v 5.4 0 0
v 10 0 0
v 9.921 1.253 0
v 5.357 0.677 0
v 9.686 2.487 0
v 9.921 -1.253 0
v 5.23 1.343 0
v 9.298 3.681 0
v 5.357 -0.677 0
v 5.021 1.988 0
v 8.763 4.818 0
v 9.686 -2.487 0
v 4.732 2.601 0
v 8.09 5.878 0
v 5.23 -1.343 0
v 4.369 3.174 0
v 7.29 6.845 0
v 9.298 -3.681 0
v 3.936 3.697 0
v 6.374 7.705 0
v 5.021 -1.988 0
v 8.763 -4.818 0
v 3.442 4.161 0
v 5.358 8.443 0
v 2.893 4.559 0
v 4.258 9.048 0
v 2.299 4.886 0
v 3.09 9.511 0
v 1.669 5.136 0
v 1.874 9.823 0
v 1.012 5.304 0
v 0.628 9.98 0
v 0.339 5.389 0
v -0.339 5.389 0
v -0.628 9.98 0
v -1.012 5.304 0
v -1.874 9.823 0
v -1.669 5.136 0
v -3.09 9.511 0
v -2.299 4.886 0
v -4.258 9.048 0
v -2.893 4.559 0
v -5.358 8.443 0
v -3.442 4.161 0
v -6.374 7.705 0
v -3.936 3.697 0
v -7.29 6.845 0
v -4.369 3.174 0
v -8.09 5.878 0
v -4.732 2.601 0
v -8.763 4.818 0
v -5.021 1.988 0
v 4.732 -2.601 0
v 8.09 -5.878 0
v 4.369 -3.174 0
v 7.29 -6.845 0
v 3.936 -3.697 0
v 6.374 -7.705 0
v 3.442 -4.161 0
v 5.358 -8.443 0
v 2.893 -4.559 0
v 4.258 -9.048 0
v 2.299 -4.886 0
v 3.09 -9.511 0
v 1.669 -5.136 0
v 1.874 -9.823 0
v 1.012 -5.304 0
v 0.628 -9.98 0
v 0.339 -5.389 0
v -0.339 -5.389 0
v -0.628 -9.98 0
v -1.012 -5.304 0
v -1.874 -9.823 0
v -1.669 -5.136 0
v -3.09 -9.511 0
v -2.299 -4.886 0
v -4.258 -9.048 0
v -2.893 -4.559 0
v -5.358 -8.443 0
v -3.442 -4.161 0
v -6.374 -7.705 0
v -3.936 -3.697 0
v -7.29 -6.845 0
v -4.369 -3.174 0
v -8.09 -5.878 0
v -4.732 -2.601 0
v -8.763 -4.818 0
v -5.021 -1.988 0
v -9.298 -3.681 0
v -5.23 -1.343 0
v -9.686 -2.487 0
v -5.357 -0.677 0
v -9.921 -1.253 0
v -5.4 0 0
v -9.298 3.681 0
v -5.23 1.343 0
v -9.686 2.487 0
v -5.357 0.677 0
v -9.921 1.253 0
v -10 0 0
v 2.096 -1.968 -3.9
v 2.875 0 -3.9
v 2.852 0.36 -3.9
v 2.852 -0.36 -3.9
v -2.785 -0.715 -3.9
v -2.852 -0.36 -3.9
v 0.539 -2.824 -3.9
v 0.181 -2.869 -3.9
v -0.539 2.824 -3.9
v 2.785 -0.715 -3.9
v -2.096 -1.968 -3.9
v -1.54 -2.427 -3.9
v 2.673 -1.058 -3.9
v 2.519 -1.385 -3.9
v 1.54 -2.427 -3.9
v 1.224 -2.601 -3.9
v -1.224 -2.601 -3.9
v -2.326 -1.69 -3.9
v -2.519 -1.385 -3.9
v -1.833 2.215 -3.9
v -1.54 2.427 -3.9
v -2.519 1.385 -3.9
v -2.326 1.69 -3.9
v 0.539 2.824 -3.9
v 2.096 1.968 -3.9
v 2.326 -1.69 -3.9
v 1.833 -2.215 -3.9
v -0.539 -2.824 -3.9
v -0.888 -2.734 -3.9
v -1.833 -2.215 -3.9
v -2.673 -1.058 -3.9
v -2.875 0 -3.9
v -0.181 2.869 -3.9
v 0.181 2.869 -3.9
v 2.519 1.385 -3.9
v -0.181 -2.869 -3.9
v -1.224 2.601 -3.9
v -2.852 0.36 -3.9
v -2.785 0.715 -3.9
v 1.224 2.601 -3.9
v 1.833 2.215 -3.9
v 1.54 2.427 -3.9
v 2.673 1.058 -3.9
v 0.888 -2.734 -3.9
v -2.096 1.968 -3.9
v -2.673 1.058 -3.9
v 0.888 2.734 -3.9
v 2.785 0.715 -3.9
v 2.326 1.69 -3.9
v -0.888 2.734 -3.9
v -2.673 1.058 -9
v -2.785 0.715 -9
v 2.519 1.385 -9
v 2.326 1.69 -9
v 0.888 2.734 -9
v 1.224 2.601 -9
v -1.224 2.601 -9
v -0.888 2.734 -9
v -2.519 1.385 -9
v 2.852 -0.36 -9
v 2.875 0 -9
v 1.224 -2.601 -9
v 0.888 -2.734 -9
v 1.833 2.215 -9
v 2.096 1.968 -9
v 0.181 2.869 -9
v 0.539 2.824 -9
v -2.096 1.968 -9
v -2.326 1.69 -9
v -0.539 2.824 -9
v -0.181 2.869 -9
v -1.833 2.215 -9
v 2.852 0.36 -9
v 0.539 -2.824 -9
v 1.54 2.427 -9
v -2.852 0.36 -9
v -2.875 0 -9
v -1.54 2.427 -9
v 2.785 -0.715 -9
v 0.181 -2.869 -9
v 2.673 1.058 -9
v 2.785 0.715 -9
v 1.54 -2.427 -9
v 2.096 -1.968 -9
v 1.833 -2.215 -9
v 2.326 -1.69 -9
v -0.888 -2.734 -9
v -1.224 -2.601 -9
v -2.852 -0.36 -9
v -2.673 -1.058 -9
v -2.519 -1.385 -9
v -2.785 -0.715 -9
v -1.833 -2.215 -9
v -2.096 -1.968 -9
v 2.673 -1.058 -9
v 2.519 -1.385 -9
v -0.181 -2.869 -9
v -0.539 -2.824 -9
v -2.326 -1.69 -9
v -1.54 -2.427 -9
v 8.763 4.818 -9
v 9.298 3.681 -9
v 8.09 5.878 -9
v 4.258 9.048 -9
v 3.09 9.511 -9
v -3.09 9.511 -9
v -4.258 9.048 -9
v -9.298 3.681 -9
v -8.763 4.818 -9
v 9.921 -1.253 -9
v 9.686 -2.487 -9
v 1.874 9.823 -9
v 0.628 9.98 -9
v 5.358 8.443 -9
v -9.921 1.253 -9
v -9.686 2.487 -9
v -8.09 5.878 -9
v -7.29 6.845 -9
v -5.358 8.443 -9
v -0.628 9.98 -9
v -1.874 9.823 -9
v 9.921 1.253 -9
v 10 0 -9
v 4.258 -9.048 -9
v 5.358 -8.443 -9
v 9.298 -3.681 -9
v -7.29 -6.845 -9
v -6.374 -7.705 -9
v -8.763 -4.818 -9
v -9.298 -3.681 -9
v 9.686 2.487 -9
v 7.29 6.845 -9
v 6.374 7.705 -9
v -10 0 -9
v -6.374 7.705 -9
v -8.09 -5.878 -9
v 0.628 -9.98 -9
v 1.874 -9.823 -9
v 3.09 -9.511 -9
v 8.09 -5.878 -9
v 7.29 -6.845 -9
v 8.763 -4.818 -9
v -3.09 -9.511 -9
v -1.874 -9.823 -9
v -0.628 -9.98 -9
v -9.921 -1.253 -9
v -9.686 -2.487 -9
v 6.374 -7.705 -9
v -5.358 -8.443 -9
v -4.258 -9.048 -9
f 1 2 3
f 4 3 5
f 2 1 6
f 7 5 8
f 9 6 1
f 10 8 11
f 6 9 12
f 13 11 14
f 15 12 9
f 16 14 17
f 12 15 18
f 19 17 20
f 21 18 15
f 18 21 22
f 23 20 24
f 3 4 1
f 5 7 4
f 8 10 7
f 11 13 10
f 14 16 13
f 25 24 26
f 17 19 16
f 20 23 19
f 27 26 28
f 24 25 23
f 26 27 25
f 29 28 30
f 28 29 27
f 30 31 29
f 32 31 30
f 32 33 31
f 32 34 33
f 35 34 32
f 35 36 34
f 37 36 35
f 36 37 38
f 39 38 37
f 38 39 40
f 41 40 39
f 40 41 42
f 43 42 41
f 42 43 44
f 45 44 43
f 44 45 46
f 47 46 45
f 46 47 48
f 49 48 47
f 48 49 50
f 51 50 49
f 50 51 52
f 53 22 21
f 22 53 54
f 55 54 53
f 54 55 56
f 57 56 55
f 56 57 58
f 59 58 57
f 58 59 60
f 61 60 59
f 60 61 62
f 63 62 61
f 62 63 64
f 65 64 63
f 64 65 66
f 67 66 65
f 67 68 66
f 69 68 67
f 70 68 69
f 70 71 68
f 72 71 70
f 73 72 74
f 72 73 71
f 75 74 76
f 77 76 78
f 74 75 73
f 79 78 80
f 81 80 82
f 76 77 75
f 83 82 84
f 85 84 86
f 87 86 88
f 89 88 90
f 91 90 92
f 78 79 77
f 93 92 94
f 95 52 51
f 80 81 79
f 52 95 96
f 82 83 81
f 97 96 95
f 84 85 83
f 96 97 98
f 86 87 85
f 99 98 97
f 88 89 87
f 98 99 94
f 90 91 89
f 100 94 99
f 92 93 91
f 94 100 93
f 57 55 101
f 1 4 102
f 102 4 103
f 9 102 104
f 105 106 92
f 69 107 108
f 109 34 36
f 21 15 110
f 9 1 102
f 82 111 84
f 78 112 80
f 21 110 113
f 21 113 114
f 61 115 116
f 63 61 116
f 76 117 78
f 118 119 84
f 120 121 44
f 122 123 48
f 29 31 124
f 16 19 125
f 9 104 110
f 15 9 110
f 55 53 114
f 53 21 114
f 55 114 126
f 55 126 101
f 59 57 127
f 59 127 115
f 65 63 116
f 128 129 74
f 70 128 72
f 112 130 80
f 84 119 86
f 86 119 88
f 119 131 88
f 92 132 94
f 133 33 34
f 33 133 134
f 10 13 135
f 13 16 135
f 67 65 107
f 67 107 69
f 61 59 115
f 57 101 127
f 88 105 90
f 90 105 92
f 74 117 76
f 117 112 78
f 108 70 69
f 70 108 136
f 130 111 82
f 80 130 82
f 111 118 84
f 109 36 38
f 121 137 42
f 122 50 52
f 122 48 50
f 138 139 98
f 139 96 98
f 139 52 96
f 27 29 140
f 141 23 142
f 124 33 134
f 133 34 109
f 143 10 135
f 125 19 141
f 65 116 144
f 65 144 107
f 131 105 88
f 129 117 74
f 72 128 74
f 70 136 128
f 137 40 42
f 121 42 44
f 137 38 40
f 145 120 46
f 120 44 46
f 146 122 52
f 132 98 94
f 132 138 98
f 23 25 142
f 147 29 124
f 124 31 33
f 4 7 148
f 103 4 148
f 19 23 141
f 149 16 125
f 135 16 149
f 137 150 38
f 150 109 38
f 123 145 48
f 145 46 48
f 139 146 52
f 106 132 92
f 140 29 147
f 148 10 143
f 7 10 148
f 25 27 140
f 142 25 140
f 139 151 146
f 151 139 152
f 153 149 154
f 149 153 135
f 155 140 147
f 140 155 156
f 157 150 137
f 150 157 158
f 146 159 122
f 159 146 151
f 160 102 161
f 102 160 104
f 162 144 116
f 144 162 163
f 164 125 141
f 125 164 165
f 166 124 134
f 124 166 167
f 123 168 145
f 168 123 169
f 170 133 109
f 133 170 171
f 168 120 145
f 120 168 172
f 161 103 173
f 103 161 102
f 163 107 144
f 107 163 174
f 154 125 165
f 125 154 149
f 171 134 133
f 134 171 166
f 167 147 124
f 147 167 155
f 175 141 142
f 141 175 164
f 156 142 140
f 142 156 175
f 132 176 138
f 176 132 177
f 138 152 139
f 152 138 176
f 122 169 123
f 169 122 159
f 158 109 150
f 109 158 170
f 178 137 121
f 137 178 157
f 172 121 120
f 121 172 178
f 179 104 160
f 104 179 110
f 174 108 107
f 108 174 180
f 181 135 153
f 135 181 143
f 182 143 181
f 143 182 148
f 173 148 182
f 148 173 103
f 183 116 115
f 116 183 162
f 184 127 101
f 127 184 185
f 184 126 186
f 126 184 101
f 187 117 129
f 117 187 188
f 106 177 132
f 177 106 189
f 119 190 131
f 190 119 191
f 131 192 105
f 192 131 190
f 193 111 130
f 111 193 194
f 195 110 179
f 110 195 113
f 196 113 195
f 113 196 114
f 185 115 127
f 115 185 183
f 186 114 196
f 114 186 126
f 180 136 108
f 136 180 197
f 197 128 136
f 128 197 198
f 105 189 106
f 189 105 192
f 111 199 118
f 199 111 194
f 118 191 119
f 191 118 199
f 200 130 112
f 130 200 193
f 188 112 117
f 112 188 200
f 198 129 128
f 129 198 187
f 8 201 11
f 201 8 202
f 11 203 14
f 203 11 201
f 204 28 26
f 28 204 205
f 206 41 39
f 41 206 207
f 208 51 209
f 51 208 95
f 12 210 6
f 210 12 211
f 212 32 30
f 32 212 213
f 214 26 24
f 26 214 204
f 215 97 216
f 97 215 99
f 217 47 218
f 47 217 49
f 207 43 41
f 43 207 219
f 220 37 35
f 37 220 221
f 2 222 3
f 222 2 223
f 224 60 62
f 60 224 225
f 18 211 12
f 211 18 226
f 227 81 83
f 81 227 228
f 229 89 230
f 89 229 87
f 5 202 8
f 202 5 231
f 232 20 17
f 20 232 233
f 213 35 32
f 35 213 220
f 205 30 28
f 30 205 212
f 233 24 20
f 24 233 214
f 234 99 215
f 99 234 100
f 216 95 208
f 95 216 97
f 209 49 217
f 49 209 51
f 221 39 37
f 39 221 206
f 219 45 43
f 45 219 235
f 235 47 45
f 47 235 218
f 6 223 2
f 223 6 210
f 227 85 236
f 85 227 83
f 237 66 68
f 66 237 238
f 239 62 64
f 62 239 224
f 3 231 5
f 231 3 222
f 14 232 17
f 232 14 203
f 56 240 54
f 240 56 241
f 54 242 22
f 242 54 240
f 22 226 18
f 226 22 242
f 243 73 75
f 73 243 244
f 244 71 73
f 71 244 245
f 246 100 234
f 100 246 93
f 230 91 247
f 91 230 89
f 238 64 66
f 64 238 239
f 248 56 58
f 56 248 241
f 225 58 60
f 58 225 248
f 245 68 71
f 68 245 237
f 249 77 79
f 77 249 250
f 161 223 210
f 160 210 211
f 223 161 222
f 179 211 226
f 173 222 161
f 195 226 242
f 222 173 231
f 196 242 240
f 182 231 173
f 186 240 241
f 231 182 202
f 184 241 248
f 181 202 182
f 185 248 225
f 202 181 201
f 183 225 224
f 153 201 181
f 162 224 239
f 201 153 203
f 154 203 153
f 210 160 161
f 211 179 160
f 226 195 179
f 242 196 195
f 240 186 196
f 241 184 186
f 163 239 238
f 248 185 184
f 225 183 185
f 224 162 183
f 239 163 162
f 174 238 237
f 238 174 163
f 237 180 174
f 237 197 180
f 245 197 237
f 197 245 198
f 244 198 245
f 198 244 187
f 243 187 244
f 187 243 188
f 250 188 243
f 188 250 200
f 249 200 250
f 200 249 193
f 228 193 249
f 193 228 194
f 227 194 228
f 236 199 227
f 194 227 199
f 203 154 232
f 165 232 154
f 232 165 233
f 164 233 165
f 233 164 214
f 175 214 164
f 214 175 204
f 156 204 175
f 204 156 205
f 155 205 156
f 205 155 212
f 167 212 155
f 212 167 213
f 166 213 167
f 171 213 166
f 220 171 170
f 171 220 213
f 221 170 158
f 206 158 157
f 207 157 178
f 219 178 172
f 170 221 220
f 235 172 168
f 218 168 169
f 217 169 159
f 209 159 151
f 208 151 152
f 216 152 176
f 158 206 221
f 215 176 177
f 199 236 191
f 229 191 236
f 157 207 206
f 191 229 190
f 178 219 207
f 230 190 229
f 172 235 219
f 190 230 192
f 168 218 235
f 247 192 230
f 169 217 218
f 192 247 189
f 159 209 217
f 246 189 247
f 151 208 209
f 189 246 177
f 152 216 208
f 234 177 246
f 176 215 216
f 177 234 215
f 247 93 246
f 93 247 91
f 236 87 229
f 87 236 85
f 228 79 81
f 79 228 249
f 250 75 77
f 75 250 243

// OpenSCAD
$fn = 50;


difference() {
	union() {
		translate(v = [0, 0, -9.0000000000]) {
			cylinder(h = 9, r = 10.0000000000);
		}
		#translate(v = [0, 0, -12.0000000000]) {
			cylinder(h = 12, r = 2.8750000000);
		}
	}
	union() {
		translate(v = [0, 0, 0]) {
			rotate(a = [0, 0, 0]) {
				difference() {
					union() {
						translate(v = [0, 0, -12.0000000000]) {
							cylinder(h = 12, r = 2.6000000000);
						}
						translate(v = [0, 0, -3.9000000000]) {
							cylinder(h = 3.9000000000, r1 = 2.8750000000, r2 = 5.4000000000);
						}
						translate(v = [0, 0, -12.0000000000]) {
							cylinder(h = 12, r = 2.8750000000);
						}
						translate(v = [0, 0, -12.0000000000]) {
							cylinder(h = 12, r = 2.6000000000);
						}
					}
					union();
				}
			}
		}
	}
}
